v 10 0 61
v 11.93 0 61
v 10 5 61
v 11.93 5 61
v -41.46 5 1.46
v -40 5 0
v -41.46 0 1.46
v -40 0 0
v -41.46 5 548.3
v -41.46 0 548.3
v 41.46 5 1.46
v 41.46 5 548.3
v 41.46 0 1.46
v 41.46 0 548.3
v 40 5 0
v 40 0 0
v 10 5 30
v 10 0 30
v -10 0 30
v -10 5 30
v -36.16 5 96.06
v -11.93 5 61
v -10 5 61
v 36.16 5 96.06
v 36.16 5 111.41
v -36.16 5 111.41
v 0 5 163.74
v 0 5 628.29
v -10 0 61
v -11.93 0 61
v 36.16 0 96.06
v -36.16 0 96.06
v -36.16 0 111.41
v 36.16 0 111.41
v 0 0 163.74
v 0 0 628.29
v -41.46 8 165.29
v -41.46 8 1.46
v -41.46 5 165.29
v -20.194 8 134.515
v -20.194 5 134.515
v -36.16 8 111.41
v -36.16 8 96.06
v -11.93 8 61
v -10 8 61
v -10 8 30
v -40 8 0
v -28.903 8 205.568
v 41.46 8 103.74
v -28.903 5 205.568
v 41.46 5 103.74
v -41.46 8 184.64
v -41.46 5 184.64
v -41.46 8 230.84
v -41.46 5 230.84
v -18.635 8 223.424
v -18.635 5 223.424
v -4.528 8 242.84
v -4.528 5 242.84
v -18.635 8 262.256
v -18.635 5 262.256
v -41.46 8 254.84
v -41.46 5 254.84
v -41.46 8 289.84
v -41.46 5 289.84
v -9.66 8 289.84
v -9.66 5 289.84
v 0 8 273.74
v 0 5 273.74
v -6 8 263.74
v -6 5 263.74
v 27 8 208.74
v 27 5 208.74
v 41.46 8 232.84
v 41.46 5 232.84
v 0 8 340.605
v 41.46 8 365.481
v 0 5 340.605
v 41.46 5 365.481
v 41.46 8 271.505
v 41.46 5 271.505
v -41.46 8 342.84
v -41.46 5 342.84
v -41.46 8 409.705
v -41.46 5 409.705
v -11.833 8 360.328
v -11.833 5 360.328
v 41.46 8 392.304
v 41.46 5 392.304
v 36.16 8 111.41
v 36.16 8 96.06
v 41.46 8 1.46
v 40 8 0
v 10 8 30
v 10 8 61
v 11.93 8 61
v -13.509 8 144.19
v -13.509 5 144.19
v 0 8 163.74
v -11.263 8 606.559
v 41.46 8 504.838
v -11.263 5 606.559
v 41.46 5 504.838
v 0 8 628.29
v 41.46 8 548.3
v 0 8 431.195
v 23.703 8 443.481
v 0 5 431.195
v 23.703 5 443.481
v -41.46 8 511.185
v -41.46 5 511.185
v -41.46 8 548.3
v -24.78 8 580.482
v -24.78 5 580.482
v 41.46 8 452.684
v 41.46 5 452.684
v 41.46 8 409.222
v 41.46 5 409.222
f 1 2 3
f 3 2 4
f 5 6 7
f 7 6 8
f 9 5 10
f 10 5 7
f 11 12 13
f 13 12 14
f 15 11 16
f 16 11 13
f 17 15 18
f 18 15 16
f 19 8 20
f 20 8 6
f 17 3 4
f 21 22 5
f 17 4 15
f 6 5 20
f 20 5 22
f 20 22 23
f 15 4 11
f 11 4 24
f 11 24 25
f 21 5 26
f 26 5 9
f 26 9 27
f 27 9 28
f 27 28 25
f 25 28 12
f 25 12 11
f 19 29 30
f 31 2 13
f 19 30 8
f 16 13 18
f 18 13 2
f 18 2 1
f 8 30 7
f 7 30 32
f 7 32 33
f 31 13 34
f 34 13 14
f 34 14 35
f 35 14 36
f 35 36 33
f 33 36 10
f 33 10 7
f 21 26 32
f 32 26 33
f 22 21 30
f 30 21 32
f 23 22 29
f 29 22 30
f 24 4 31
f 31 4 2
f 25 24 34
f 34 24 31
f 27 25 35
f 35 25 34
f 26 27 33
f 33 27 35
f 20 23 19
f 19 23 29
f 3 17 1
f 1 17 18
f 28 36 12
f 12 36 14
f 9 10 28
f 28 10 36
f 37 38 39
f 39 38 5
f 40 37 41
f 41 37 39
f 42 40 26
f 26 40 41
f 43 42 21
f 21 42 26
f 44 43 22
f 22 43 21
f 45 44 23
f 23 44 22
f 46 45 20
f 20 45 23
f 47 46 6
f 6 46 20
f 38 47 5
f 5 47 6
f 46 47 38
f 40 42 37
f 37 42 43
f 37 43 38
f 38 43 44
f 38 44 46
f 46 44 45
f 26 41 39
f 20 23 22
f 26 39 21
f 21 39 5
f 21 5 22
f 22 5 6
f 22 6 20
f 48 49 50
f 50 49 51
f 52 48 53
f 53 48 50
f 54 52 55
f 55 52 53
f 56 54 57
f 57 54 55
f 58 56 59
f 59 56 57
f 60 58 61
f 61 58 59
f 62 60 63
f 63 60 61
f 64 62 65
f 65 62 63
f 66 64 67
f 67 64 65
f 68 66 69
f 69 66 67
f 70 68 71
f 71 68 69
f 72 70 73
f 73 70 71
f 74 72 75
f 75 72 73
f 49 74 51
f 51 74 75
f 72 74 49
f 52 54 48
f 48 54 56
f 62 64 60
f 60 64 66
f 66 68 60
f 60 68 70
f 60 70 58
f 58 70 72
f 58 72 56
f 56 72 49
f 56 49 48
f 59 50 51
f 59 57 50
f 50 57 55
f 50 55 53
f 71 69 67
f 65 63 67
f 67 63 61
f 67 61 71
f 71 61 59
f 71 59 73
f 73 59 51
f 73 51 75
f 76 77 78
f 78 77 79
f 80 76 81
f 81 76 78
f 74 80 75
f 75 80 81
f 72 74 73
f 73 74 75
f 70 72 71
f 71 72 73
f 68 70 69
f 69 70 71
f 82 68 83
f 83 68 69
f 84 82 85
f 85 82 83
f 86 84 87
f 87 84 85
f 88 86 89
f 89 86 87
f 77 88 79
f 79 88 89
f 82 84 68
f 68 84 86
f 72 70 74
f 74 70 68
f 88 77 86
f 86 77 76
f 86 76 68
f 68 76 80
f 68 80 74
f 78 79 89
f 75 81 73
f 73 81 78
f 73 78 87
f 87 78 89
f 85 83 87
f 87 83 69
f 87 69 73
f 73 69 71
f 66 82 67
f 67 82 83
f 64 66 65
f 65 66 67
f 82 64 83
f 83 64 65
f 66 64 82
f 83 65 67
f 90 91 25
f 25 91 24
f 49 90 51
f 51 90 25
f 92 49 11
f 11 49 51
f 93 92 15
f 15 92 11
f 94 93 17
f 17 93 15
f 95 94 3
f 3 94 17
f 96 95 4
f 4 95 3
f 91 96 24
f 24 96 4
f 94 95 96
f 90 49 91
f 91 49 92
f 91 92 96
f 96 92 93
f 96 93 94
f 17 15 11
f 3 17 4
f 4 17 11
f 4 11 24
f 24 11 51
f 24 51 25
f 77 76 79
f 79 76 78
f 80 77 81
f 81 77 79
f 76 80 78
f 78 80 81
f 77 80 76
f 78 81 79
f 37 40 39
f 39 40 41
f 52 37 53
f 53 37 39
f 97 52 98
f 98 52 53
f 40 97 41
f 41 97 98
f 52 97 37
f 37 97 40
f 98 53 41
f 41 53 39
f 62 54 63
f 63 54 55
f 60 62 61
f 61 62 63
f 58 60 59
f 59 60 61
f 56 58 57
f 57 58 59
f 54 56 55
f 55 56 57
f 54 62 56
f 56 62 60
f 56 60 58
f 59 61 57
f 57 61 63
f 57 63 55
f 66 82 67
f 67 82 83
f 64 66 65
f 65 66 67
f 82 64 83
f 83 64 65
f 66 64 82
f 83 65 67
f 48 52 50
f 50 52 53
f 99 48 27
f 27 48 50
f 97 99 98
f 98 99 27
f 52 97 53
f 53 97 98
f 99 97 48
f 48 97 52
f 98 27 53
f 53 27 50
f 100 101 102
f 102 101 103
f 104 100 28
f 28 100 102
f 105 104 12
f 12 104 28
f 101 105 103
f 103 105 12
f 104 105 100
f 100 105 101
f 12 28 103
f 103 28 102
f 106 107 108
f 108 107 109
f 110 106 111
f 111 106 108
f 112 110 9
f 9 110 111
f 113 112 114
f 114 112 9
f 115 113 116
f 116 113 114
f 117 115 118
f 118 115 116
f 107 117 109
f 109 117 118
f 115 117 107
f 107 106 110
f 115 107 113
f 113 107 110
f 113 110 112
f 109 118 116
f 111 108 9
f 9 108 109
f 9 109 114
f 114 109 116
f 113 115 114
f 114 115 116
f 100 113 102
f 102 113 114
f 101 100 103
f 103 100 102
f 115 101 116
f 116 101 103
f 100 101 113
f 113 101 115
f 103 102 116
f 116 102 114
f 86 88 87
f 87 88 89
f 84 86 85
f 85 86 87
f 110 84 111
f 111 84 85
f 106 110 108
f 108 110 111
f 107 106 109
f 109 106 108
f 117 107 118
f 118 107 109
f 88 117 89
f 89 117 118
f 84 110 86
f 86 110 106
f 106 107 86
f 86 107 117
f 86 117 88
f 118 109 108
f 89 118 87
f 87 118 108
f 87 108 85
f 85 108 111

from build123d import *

# Parameters (mm, degrees)
EXTRUDE_1_DEPTH          = 5
CUT_EXTRUDE_1_REACH      = 623.694
CUT_EXTRUDE_8_DEPTH      = 622.694149643
CUT_EXTRUDE_8_DEPTH_BACK = 622.694149643
SKETCH_4_W               = 20
SKETCH_4_H               = 31
EXTRUDE_2_DEPTH          = 5
EXTRUDE_8_DEPTH          = 3
EXTRUDE_8_2_DEPTH        = 3
EXTRUDE_8_3_DEPTH        = 3
EXTRUDE_8_4_DEPTH        = 3
EXTRUDE_8_5_DEPTH        = 3
EXTRUDE_9_DEPTH          = 3
EXTRUDE_9_2_DEPTH        = 3
EXTRUDE_12_DEPTH         = 3
EXTRUDE_12_2_DEPTH       = 3
EXTRUDE_12_3_DEPTH       = 3
EXTRUDE_12_4_DEPTH       = 3
EXTRUDE_12_5_DEPTH       = 3
EXTRUDE_14_DEPTH         = 3
EXTRUDE_14_2_DEPTH       = 3


# Read off the part's stored shape, not the designer's step: 凸台-拉伸9
with BuildPart() as part:
    # 草图1 → 凸台-拉伸1 (new body)
    with BuildSketch(Plane(origin=(0, 0, 0), x_dir=(1, 0, 0), z_dir=(0, 1, 0))):
        Polygon((40, 0), (0, -40), (-40, 0), (-41.46, -1.46), (-41.46, -540.3), (0, -620.29), (41.46, -540.3), (41.46, -1.46), align=None)
    extrude(amount=EXTRUDE_1_DEPTH)

    # 草图2 → 切除-拉伸1 (cut, up to next)
    with BuildSketch(Plane(origin=(0, 5, 0), x_dir=(1, 0, 0), z_dir=(0, 1, 0)), mode=Mode.PRIVATE) as cut_extrude_1_sk1:
        Polygon((11.93, -61), (-11.93, -61), (-36.16, -96.06), (-36.16, -111.41), (0, -163.74), (36.16, -111.41), (36.16, -96.06), align=None)
    cut_extrude_1_tool1 = extrude(cut_extrude_1_sk1.sketch, amount=-CUT_EXTRUDE_1_REACH, mode=Mode.PRIVATE) & part.part
    add(cut_extrude_1_tool1.solids().sort_by_distance((0, 5, 105.867422))[0], mode=Mode.SUBTRACT)

    # 草图4 → 切除-拉伸8 (cut, two sides: drawn at the far end of the back side and taken through both)
    with BuildSketch(Plane.XZ.offset(-CUT_EXTRUDE_8_DEPTH_BACK)):
        with Locations((0, 45.5)):
            Rectangle(SKETCH_4_W, SKETCH_4_H)
    extrude(amount=CUT_EXTRUDE_8_DEPTH + CUT_EXTRUDE_8_DEPTH_BACK, mode=Mode.SUBTRACT)

    # 草图5 → 凸台-拉伸2 (add)
    with BuildSketch(Plane.XZ):
        Polygon((-41.46, 540.3), (-41.46, 548.3), (0, 628.29), (41.46, 548.3), (41.46, 540.3), (0, 620.29), align=None)
    extrude(amount=-EXTRUDE_2_DEPTH)


with BuildPart() as body_2:
    # 草图9 → 凸台-拉伸8 (new body)
    with BuildSketch(Plane(origin=(0, 5, 0), x_dir=(1, 0, 0), z_dir=(0, 1, 0))):
        Polygon((-41.46, -342.84), (-9.66, -289.84), (-41.46, -289.84), align=None)
    extrude(amount=EXTRUDE_8_DEPTH)


with BuildPart() as body_3:
    # 草图9 → Extrude 8 2 (new body)
    with BuildSketch(Plane(origin=(0, 5, 0), x_dir=(1, 0, 0), z_dir=(0, 1, 0))):
        Polygon((-28.903164688, -205.568058853), (0, -163.74), (-13.509055991, -144.189975111), (-41.46, -184.64), align=None)
    extrude(amount=EXTRUDE_8_2_DEPTH)


with BuildPart() as body_4:
    # 草图9 → Extrude 8 3 (new body)
    with BuildSketch(Plane(origin=(0, 5, 0), x_dir=(1, 0, 0), z_dir=(0, 1, 0))):
        Polygon((-41.46, -230.84), (-41.46, -254.84), (-18.634643609, -262.256407865), (-4.527797554, -242.84), (-18.634643609, -223.423592135), align=None)
    extrude(amount=EXTRUDE_8_3_DEPTH)


with BuildPart() as body_5:
    # 草图9 → Extrude 8 4 (new body)
    with BuildSketch(Plane(origin=(0, 5, 0), x_dir=(1, 0, 0), z_dir=(0, 1, 0))):
        Polygon((36.16, -111.41), (41.46, -103.739950221), (41.46, -1.46), (40, 0), (10, -30), (10, -61), (11.93, -61), (36.16, -96.06), align=None)
    extrude(amount=EXTRUDE_8_4_DEPTH)


with BuildPart() as body_6:
    # 草图9 → Extrude 8 5 (new body)
    with BuildSketch(Plane(origin=(0, 5, 0), x_dir=(1, 0, 0), z_dir=(0, 1, 0))):
        Polygon((-41.46, -165.290228805), (-20.194396392, -134.515089513), (-36.16, -111.41), (-36.16, -96.06), (-11.93, -61), (-10, -61), (-10, -30), (-40, 0), (-41.46, -1.46), align=None)
    extrude(amount=EXTRUDE_8_5_DEPTH)


with BuildPart() as body_7:
    # 凸台-拉伸9 outline → 凸台-拉伸9 (new body)
    with BuildSketch(Plane(origin=(0, 5, 0), x_dir=(1, 0, 0), z_dir=(0, 1, 0))):
        Polygon((41.46, -548.3), (41.46, -504.838236483), (-11.263437401, -606.559118242), (0, -628.29), align=None)
    extrude(amount=EXTRUDE_9_DEPTH)


with BuildPart() as body_8:
    # Extrude 9 2 outline → Extrude 9 2 (new body)
    with BuildSketch(Plane(origin=(0, 5, 0), x_dir=(1, 0, 0), z_dir=(0, 1, 0))):
        Polygon((-41.46, -289.84), (-41.46, -342.84), (-9.66, -289.84), align=None)
    extrude(amount=EXTRUDE_9_2_DEPTH)


with BuildPart() as body_9:
    # 草图9<12> → 凸台-拉伸12 (new body)
    with BuildSketch(Plane(origin=(0, 5, 0), x_dir=(1, 0, 0), z_dir=(0, 1, 0))):
        Polygon((-9.66, -289.84), (0, -273.74), (-6, -263.74), (27, -208.74), (41.46, -232.84), (41.46, -103.739950221), (-28.903164688, -205.568058853), (-41.46, -184.64), (-41.46, -230.84), (-18.634643609, -223.423592135), (-4.527797554, -242.84), (-18.634643609, -262.256407865), (-41.46, -254.84), (-41.46, -289.84), align=None)
    extrude(amount=EXTRUDE_12_DEPTH)


with BuildPart() as body_10:
    # 草图9<12> → Extrude 12 2 (new body)
    with BuildSketch(Plane(origin=(0, 5, 0), x_dir=(1, 0, 0), z_dir=(0, 1, 0))):
        Polygon((-11.833402375, -360.327795222), (-41.46, -409.70545793), (-41.46, -511.184789097), (0, -431.194789097), (23.703431301, -443.480628098), (41.46, -409.222356746), (41.46, -392.303836646), align=None)
    extrude(amount=EXTRUDE_12_2_DEPTH)


with BuildPart() as body_11:
    # 草图9<12> → Extrude 12 3 (new body)
    with BuildSketch(Plane(origin=(0, 5, 0), x_dir=(1, 0, 0), z_dir=(0, 1, 0))):
        Polygon((41.46, -365.48145793), (41.46, -271.50545793), (0, -340.60545793), align=None)
    extrude(amount=EXTRUDE_12_3_DEPTH)


with BuildPart() as body_12:
    # 草图9<12> → Extrude 12 4 (new body)
    with BuildSketch(Plane(origin=(0, 5, 0), x_dir=(1, 0, 0), z_dir=(0, 1, 0))):
        Polygon((-41.46, -184.64), (-13.509055991, -144.189975111), (-20.194396392, -134.515089513), (-41.46, -165.290228805), align=None)
    extrude(amount=EXTRUDE_12_4_DEPTH)


with BuildPart() as body_13:
    # 草图9<12> → Extrude 12 5 (new body)
    with BuildSketch(Plane(origin=(0, 5, 0), x_dir=(1, 0, 0), z_dir=(0, 1, 0))):
        Polygon((41.46, -504.838236483), (41.46, -452.684120263), (-24.779562282, -580.482060131), (-11.263437401, -606.559118242), align=None)
    extrude(amount=EXTRUDE_12_5_DEPTH)


with BuildPart() as body_14:
    # 草图9<17> → 凸台-拉伸14 (new body)
    with BuildSketch(Plane(origin=(0, 5, 0), x_dir=(1, 0, 0), z_dir=(0, 1, 0))):
        Polygon((27, -208.74), (-6, -263.74), (0, -273.74), (-41.46, -342.84), (-41.46, -409.70545793), (-11.833402375, -360.327795222), (41.46, -392.303836646), (41.46, -365.48145793), (0, -340.60545793), (41.46, -271.50545793), (41.46, -232.84), align=None)
    extrude(amount=EXTRUDE_14_DEPTH)


with BuildPart() as body_15:
    # 草图9<17> → Extrude 14 2 (new body)
    with BuildSketch(Plane(origin=(0, 5, 0), x_dir=(1, 0, 0), z_dir=(0, 1, 0))):
        Polygon((23.703431301, -443.480628098), (0, -431.194789097), (-41.46, -511.184789097), (-41.46, -548.3), (-24.779562282, -580.482060131), (41.46, -452.684120263), (41.46, -409.222356746), align=None)
    extrude(amount=EXTRUDE_14_2_DEPTH)


solid = Compound([part.part, body_2.part, body_3.part, body_4.part, body_5.part, body_6.part, body_7.part, body_8.part, body_9.part, body_10.part, body_11.part, body_12.part, body_13.part, body_14.part, body_15.part])
